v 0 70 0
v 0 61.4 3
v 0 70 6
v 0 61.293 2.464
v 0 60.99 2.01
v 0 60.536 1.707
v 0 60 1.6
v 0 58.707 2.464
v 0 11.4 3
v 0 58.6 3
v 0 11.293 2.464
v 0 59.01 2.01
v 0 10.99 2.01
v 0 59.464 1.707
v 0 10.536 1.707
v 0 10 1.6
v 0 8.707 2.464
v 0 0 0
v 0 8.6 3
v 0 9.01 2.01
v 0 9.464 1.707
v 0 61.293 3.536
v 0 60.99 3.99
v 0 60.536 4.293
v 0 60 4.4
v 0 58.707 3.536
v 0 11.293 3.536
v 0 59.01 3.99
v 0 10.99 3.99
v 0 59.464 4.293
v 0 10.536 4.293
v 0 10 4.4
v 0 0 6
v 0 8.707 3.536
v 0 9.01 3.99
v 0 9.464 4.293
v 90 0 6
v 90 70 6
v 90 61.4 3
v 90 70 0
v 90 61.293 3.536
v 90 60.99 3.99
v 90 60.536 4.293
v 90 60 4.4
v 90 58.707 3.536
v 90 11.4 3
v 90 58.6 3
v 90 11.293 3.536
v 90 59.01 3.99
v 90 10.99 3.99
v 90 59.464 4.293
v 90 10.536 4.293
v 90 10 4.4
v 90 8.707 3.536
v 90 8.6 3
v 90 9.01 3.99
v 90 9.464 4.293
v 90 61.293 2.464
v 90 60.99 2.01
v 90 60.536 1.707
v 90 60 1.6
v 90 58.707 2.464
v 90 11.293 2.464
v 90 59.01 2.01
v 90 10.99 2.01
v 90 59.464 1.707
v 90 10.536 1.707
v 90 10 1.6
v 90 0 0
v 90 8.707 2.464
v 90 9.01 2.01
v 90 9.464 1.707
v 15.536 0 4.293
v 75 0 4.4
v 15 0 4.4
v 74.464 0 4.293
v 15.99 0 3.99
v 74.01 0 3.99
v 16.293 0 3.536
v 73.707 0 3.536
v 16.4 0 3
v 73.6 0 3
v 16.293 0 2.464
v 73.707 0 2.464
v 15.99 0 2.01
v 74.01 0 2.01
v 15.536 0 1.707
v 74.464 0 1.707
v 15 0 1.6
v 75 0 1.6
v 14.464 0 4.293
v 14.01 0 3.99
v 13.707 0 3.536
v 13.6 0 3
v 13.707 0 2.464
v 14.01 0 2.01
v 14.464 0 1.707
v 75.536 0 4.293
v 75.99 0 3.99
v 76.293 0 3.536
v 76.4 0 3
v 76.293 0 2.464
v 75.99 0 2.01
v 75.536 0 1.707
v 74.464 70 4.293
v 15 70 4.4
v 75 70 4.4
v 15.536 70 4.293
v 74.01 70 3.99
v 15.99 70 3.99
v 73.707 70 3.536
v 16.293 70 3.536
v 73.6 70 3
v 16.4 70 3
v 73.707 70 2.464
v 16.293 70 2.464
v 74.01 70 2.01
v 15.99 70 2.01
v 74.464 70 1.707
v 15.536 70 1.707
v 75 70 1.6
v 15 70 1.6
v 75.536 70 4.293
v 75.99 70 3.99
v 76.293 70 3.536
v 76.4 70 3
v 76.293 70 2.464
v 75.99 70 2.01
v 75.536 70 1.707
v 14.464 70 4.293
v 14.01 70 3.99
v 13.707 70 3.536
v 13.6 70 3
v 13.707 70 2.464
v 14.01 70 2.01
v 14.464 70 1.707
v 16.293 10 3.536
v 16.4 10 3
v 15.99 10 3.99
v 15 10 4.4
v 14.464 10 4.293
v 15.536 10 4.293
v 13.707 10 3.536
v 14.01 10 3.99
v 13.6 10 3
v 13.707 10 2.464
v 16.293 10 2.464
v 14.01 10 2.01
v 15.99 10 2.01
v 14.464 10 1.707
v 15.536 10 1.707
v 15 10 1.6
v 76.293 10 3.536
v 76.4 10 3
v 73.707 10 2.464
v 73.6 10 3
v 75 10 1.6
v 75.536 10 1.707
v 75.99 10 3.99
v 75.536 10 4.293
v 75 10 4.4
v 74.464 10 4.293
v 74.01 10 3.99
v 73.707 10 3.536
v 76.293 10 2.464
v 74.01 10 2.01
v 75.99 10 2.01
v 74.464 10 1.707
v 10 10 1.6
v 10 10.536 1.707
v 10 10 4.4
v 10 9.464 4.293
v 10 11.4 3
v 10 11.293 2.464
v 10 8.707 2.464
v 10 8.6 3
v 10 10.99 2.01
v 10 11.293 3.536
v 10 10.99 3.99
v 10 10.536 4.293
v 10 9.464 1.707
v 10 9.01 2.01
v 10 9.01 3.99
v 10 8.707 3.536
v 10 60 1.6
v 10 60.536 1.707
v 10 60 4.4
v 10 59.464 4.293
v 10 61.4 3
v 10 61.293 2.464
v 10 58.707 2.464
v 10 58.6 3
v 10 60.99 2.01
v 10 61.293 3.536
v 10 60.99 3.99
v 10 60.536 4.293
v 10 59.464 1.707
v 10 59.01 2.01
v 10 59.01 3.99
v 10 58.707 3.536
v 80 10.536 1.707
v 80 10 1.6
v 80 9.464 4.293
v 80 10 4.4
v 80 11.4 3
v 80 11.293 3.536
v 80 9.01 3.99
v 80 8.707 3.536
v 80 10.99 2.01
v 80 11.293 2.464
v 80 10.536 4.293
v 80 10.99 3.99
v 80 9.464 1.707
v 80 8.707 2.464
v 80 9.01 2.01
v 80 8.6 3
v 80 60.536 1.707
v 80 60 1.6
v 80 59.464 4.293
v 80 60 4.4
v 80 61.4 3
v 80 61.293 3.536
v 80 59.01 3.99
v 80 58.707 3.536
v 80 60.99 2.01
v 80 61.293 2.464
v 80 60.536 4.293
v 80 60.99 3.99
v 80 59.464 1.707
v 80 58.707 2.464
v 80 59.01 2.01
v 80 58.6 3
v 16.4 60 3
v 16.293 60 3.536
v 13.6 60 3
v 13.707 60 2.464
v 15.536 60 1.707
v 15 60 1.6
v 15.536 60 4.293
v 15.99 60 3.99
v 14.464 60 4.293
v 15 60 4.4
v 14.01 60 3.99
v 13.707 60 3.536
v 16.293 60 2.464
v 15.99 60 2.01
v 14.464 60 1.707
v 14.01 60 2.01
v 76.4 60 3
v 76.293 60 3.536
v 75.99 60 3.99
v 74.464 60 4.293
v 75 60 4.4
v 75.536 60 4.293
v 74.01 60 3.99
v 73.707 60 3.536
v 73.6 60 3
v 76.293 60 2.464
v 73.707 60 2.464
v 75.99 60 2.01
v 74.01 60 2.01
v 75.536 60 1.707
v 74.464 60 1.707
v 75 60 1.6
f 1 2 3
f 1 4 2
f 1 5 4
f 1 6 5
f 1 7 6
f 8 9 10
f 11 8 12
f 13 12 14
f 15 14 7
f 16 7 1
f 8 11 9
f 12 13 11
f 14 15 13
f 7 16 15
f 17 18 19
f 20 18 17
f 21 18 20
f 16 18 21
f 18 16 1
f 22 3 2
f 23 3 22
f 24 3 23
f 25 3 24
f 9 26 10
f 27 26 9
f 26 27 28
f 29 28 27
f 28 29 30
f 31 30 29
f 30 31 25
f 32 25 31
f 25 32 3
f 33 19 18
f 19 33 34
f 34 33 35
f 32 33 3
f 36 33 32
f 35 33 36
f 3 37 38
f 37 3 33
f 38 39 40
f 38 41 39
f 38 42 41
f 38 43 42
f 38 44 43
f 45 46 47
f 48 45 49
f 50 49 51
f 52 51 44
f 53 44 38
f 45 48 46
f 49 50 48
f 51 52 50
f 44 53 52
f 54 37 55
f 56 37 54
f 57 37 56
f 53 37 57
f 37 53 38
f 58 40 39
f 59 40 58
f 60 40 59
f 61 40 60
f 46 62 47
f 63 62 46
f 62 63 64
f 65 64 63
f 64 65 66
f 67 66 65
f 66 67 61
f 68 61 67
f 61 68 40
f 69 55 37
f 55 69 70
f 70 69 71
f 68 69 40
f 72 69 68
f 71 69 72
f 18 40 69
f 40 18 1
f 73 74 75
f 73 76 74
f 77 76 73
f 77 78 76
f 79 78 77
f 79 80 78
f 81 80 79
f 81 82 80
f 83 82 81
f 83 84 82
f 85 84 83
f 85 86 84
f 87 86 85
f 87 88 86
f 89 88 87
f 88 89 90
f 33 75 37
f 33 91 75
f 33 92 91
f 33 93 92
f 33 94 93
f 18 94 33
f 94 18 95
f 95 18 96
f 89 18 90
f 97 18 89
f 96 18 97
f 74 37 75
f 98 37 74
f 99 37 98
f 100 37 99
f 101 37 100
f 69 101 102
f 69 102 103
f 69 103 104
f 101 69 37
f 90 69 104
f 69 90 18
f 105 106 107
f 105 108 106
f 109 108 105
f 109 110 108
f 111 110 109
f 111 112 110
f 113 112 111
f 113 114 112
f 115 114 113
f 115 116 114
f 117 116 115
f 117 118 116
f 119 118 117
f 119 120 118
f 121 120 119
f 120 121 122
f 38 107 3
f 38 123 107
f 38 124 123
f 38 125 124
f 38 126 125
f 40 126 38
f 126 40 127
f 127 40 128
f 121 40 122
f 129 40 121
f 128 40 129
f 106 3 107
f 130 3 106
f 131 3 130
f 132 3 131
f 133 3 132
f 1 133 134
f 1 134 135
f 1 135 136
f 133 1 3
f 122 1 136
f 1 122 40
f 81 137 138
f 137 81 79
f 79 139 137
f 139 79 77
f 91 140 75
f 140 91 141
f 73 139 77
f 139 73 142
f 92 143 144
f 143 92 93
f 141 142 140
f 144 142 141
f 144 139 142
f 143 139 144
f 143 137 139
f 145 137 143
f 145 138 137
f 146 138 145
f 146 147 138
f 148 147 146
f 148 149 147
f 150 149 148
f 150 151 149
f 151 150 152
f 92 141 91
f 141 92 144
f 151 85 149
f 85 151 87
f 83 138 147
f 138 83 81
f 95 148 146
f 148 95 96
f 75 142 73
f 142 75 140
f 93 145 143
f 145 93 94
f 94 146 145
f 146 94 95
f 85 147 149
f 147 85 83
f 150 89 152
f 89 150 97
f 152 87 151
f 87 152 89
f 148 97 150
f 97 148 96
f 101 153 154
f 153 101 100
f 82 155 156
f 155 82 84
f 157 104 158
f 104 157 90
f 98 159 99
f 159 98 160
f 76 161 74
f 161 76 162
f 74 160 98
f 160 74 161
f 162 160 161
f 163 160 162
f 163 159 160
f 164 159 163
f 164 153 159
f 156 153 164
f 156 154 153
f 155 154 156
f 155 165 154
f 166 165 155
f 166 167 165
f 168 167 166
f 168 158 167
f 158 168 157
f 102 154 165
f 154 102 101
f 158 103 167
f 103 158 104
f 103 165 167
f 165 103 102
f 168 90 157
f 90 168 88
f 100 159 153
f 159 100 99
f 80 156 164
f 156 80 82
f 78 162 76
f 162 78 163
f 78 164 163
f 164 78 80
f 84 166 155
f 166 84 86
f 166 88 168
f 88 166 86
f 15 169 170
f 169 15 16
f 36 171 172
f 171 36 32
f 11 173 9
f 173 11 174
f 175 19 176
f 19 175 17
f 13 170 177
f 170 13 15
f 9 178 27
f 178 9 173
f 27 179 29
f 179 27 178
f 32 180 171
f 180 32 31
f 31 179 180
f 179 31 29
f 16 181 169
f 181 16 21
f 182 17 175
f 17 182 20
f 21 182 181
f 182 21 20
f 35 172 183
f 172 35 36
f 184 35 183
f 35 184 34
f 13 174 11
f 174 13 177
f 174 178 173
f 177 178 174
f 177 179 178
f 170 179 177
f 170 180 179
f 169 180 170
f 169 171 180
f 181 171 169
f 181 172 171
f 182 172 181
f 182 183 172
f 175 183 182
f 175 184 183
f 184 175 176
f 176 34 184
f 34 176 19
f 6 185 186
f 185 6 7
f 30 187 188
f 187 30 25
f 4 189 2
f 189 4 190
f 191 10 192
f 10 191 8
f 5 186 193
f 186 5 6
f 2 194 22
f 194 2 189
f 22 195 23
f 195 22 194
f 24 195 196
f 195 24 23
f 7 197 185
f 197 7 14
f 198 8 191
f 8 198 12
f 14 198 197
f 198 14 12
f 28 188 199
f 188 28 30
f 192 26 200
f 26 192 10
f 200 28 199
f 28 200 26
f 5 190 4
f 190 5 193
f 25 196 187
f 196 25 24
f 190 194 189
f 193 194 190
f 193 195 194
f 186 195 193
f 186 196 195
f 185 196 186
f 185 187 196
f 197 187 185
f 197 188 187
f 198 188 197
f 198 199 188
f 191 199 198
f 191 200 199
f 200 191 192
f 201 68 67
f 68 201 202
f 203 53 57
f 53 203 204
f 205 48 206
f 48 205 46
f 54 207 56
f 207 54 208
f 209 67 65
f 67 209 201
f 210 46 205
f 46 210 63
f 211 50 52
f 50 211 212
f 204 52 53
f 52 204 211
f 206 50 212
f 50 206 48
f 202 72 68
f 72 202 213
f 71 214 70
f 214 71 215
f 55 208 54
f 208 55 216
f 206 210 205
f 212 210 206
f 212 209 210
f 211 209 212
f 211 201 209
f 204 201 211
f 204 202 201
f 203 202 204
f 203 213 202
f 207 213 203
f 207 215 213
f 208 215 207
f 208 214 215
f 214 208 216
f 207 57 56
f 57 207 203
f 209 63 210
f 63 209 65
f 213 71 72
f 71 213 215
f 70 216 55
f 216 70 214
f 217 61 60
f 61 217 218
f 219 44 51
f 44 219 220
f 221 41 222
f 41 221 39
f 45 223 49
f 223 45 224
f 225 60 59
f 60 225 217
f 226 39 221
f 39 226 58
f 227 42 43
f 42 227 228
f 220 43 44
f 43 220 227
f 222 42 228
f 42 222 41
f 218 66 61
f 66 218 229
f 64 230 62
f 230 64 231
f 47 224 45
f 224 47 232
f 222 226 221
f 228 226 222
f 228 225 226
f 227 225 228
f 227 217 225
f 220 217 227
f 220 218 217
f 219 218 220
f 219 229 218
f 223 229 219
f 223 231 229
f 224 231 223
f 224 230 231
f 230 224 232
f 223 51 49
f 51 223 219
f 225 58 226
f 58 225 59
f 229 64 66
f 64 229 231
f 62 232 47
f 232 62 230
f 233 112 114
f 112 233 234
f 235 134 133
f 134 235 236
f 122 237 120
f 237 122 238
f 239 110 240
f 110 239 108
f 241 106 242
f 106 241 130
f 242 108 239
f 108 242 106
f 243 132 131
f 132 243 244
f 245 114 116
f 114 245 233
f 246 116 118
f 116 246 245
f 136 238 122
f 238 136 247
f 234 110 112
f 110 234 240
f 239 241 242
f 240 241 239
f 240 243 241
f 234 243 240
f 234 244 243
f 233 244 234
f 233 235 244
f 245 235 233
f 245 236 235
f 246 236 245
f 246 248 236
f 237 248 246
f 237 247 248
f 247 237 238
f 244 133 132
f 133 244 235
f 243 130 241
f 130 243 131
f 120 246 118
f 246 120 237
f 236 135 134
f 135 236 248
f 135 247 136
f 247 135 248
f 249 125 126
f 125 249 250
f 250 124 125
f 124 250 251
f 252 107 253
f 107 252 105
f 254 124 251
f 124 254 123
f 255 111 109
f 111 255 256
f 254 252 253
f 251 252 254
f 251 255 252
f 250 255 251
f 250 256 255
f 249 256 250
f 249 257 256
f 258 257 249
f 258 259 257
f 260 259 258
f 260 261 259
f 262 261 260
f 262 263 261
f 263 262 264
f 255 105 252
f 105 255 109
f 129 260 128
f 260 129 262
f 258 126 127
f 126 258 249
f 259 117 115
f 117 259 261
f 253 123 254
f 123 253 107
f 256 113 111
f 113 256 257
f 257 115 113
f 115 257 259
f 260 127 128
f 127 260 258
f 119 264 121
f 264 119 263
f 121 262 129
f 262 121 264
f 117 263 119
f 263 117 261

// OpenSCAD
base_x_size = 90;
base_y_size = 70;
base_z_size = 6;

tap_hole_depth = 10;
tap_hole_r = 2.8/2; //M3.0 - 0.2

difference(){
	cube(size = [base_x_size, base_y_size, base_z_size], center = false);
	
	
	//backパネルねじ穴
	translate( [15 ,tap_hole_depth/2, base_z_size/2] ) rotate(a = [90, 0, 0] ){
		cylinder( h = tap_hole_depth, r = tap_hole_r, center = true , $fn=16 );
	}
	translate( [base_x_size - 15, tap_hole_depth/2, base_z_size/2] ) rotate(a = [90, 0, 0] ){
		cylinder( h = tap_hole_depth, r = tap_hole_r, center = true , $fn=16 );
	}

	//サイドパネルねじ穴
	translate( [tap_hole_depth/2, 10, base_z_size/2] ) rotate(a = [0, 90, 00] ){
		cylinder( h = tap_hole_depth, r = tap_hole_r, center = true , $fn=16 );
	}
	translate( [ tap_hole_depth/2, base_y_size - 10, base_z_size/2] ) rotate(a = [0, 90, 00] ){
		cylinder( h = tap_hole_depth, r = tap_hole_r, center = true , $fn=16 );
	}
	translate( [base_x_size - tap_hole_depth/2, 10, base_z_size/2] ) rotate(a = [0, 90, 00] ){
		cylinder( h = tap_hole_depth, r = tap_hole_r, center = true , $fn=16 );
	}
	translate( [base_x_size - tap_hole_depth/2, base_y_size - 10, base_z_size/2] ) rotate(a = [0, 90, 00] ){
		cylinder( h = tap_hole_depth, r = tap_hole_r, center = true , $fn=16 );
	}	

	//frontパネルねじ穴
	translate( [15 , base_y_size - tap_hole_depth/2, base_z_size/2] ) rotate(a = [90, 0, 0] ){
		cylinder( h = tap_hole_depth, r = tap_hole_r, center = true , $fn=16 );
	}
	translate( [base_x_size - 15, base_y_size - tap_hole_depth/2, base_z_size/2] ) rotate(a = [90, 0, 0] ){
		cylinder( h = tap_hole_depth, r = tap_hole_r, center = true , $fn=16 );
	}

}
